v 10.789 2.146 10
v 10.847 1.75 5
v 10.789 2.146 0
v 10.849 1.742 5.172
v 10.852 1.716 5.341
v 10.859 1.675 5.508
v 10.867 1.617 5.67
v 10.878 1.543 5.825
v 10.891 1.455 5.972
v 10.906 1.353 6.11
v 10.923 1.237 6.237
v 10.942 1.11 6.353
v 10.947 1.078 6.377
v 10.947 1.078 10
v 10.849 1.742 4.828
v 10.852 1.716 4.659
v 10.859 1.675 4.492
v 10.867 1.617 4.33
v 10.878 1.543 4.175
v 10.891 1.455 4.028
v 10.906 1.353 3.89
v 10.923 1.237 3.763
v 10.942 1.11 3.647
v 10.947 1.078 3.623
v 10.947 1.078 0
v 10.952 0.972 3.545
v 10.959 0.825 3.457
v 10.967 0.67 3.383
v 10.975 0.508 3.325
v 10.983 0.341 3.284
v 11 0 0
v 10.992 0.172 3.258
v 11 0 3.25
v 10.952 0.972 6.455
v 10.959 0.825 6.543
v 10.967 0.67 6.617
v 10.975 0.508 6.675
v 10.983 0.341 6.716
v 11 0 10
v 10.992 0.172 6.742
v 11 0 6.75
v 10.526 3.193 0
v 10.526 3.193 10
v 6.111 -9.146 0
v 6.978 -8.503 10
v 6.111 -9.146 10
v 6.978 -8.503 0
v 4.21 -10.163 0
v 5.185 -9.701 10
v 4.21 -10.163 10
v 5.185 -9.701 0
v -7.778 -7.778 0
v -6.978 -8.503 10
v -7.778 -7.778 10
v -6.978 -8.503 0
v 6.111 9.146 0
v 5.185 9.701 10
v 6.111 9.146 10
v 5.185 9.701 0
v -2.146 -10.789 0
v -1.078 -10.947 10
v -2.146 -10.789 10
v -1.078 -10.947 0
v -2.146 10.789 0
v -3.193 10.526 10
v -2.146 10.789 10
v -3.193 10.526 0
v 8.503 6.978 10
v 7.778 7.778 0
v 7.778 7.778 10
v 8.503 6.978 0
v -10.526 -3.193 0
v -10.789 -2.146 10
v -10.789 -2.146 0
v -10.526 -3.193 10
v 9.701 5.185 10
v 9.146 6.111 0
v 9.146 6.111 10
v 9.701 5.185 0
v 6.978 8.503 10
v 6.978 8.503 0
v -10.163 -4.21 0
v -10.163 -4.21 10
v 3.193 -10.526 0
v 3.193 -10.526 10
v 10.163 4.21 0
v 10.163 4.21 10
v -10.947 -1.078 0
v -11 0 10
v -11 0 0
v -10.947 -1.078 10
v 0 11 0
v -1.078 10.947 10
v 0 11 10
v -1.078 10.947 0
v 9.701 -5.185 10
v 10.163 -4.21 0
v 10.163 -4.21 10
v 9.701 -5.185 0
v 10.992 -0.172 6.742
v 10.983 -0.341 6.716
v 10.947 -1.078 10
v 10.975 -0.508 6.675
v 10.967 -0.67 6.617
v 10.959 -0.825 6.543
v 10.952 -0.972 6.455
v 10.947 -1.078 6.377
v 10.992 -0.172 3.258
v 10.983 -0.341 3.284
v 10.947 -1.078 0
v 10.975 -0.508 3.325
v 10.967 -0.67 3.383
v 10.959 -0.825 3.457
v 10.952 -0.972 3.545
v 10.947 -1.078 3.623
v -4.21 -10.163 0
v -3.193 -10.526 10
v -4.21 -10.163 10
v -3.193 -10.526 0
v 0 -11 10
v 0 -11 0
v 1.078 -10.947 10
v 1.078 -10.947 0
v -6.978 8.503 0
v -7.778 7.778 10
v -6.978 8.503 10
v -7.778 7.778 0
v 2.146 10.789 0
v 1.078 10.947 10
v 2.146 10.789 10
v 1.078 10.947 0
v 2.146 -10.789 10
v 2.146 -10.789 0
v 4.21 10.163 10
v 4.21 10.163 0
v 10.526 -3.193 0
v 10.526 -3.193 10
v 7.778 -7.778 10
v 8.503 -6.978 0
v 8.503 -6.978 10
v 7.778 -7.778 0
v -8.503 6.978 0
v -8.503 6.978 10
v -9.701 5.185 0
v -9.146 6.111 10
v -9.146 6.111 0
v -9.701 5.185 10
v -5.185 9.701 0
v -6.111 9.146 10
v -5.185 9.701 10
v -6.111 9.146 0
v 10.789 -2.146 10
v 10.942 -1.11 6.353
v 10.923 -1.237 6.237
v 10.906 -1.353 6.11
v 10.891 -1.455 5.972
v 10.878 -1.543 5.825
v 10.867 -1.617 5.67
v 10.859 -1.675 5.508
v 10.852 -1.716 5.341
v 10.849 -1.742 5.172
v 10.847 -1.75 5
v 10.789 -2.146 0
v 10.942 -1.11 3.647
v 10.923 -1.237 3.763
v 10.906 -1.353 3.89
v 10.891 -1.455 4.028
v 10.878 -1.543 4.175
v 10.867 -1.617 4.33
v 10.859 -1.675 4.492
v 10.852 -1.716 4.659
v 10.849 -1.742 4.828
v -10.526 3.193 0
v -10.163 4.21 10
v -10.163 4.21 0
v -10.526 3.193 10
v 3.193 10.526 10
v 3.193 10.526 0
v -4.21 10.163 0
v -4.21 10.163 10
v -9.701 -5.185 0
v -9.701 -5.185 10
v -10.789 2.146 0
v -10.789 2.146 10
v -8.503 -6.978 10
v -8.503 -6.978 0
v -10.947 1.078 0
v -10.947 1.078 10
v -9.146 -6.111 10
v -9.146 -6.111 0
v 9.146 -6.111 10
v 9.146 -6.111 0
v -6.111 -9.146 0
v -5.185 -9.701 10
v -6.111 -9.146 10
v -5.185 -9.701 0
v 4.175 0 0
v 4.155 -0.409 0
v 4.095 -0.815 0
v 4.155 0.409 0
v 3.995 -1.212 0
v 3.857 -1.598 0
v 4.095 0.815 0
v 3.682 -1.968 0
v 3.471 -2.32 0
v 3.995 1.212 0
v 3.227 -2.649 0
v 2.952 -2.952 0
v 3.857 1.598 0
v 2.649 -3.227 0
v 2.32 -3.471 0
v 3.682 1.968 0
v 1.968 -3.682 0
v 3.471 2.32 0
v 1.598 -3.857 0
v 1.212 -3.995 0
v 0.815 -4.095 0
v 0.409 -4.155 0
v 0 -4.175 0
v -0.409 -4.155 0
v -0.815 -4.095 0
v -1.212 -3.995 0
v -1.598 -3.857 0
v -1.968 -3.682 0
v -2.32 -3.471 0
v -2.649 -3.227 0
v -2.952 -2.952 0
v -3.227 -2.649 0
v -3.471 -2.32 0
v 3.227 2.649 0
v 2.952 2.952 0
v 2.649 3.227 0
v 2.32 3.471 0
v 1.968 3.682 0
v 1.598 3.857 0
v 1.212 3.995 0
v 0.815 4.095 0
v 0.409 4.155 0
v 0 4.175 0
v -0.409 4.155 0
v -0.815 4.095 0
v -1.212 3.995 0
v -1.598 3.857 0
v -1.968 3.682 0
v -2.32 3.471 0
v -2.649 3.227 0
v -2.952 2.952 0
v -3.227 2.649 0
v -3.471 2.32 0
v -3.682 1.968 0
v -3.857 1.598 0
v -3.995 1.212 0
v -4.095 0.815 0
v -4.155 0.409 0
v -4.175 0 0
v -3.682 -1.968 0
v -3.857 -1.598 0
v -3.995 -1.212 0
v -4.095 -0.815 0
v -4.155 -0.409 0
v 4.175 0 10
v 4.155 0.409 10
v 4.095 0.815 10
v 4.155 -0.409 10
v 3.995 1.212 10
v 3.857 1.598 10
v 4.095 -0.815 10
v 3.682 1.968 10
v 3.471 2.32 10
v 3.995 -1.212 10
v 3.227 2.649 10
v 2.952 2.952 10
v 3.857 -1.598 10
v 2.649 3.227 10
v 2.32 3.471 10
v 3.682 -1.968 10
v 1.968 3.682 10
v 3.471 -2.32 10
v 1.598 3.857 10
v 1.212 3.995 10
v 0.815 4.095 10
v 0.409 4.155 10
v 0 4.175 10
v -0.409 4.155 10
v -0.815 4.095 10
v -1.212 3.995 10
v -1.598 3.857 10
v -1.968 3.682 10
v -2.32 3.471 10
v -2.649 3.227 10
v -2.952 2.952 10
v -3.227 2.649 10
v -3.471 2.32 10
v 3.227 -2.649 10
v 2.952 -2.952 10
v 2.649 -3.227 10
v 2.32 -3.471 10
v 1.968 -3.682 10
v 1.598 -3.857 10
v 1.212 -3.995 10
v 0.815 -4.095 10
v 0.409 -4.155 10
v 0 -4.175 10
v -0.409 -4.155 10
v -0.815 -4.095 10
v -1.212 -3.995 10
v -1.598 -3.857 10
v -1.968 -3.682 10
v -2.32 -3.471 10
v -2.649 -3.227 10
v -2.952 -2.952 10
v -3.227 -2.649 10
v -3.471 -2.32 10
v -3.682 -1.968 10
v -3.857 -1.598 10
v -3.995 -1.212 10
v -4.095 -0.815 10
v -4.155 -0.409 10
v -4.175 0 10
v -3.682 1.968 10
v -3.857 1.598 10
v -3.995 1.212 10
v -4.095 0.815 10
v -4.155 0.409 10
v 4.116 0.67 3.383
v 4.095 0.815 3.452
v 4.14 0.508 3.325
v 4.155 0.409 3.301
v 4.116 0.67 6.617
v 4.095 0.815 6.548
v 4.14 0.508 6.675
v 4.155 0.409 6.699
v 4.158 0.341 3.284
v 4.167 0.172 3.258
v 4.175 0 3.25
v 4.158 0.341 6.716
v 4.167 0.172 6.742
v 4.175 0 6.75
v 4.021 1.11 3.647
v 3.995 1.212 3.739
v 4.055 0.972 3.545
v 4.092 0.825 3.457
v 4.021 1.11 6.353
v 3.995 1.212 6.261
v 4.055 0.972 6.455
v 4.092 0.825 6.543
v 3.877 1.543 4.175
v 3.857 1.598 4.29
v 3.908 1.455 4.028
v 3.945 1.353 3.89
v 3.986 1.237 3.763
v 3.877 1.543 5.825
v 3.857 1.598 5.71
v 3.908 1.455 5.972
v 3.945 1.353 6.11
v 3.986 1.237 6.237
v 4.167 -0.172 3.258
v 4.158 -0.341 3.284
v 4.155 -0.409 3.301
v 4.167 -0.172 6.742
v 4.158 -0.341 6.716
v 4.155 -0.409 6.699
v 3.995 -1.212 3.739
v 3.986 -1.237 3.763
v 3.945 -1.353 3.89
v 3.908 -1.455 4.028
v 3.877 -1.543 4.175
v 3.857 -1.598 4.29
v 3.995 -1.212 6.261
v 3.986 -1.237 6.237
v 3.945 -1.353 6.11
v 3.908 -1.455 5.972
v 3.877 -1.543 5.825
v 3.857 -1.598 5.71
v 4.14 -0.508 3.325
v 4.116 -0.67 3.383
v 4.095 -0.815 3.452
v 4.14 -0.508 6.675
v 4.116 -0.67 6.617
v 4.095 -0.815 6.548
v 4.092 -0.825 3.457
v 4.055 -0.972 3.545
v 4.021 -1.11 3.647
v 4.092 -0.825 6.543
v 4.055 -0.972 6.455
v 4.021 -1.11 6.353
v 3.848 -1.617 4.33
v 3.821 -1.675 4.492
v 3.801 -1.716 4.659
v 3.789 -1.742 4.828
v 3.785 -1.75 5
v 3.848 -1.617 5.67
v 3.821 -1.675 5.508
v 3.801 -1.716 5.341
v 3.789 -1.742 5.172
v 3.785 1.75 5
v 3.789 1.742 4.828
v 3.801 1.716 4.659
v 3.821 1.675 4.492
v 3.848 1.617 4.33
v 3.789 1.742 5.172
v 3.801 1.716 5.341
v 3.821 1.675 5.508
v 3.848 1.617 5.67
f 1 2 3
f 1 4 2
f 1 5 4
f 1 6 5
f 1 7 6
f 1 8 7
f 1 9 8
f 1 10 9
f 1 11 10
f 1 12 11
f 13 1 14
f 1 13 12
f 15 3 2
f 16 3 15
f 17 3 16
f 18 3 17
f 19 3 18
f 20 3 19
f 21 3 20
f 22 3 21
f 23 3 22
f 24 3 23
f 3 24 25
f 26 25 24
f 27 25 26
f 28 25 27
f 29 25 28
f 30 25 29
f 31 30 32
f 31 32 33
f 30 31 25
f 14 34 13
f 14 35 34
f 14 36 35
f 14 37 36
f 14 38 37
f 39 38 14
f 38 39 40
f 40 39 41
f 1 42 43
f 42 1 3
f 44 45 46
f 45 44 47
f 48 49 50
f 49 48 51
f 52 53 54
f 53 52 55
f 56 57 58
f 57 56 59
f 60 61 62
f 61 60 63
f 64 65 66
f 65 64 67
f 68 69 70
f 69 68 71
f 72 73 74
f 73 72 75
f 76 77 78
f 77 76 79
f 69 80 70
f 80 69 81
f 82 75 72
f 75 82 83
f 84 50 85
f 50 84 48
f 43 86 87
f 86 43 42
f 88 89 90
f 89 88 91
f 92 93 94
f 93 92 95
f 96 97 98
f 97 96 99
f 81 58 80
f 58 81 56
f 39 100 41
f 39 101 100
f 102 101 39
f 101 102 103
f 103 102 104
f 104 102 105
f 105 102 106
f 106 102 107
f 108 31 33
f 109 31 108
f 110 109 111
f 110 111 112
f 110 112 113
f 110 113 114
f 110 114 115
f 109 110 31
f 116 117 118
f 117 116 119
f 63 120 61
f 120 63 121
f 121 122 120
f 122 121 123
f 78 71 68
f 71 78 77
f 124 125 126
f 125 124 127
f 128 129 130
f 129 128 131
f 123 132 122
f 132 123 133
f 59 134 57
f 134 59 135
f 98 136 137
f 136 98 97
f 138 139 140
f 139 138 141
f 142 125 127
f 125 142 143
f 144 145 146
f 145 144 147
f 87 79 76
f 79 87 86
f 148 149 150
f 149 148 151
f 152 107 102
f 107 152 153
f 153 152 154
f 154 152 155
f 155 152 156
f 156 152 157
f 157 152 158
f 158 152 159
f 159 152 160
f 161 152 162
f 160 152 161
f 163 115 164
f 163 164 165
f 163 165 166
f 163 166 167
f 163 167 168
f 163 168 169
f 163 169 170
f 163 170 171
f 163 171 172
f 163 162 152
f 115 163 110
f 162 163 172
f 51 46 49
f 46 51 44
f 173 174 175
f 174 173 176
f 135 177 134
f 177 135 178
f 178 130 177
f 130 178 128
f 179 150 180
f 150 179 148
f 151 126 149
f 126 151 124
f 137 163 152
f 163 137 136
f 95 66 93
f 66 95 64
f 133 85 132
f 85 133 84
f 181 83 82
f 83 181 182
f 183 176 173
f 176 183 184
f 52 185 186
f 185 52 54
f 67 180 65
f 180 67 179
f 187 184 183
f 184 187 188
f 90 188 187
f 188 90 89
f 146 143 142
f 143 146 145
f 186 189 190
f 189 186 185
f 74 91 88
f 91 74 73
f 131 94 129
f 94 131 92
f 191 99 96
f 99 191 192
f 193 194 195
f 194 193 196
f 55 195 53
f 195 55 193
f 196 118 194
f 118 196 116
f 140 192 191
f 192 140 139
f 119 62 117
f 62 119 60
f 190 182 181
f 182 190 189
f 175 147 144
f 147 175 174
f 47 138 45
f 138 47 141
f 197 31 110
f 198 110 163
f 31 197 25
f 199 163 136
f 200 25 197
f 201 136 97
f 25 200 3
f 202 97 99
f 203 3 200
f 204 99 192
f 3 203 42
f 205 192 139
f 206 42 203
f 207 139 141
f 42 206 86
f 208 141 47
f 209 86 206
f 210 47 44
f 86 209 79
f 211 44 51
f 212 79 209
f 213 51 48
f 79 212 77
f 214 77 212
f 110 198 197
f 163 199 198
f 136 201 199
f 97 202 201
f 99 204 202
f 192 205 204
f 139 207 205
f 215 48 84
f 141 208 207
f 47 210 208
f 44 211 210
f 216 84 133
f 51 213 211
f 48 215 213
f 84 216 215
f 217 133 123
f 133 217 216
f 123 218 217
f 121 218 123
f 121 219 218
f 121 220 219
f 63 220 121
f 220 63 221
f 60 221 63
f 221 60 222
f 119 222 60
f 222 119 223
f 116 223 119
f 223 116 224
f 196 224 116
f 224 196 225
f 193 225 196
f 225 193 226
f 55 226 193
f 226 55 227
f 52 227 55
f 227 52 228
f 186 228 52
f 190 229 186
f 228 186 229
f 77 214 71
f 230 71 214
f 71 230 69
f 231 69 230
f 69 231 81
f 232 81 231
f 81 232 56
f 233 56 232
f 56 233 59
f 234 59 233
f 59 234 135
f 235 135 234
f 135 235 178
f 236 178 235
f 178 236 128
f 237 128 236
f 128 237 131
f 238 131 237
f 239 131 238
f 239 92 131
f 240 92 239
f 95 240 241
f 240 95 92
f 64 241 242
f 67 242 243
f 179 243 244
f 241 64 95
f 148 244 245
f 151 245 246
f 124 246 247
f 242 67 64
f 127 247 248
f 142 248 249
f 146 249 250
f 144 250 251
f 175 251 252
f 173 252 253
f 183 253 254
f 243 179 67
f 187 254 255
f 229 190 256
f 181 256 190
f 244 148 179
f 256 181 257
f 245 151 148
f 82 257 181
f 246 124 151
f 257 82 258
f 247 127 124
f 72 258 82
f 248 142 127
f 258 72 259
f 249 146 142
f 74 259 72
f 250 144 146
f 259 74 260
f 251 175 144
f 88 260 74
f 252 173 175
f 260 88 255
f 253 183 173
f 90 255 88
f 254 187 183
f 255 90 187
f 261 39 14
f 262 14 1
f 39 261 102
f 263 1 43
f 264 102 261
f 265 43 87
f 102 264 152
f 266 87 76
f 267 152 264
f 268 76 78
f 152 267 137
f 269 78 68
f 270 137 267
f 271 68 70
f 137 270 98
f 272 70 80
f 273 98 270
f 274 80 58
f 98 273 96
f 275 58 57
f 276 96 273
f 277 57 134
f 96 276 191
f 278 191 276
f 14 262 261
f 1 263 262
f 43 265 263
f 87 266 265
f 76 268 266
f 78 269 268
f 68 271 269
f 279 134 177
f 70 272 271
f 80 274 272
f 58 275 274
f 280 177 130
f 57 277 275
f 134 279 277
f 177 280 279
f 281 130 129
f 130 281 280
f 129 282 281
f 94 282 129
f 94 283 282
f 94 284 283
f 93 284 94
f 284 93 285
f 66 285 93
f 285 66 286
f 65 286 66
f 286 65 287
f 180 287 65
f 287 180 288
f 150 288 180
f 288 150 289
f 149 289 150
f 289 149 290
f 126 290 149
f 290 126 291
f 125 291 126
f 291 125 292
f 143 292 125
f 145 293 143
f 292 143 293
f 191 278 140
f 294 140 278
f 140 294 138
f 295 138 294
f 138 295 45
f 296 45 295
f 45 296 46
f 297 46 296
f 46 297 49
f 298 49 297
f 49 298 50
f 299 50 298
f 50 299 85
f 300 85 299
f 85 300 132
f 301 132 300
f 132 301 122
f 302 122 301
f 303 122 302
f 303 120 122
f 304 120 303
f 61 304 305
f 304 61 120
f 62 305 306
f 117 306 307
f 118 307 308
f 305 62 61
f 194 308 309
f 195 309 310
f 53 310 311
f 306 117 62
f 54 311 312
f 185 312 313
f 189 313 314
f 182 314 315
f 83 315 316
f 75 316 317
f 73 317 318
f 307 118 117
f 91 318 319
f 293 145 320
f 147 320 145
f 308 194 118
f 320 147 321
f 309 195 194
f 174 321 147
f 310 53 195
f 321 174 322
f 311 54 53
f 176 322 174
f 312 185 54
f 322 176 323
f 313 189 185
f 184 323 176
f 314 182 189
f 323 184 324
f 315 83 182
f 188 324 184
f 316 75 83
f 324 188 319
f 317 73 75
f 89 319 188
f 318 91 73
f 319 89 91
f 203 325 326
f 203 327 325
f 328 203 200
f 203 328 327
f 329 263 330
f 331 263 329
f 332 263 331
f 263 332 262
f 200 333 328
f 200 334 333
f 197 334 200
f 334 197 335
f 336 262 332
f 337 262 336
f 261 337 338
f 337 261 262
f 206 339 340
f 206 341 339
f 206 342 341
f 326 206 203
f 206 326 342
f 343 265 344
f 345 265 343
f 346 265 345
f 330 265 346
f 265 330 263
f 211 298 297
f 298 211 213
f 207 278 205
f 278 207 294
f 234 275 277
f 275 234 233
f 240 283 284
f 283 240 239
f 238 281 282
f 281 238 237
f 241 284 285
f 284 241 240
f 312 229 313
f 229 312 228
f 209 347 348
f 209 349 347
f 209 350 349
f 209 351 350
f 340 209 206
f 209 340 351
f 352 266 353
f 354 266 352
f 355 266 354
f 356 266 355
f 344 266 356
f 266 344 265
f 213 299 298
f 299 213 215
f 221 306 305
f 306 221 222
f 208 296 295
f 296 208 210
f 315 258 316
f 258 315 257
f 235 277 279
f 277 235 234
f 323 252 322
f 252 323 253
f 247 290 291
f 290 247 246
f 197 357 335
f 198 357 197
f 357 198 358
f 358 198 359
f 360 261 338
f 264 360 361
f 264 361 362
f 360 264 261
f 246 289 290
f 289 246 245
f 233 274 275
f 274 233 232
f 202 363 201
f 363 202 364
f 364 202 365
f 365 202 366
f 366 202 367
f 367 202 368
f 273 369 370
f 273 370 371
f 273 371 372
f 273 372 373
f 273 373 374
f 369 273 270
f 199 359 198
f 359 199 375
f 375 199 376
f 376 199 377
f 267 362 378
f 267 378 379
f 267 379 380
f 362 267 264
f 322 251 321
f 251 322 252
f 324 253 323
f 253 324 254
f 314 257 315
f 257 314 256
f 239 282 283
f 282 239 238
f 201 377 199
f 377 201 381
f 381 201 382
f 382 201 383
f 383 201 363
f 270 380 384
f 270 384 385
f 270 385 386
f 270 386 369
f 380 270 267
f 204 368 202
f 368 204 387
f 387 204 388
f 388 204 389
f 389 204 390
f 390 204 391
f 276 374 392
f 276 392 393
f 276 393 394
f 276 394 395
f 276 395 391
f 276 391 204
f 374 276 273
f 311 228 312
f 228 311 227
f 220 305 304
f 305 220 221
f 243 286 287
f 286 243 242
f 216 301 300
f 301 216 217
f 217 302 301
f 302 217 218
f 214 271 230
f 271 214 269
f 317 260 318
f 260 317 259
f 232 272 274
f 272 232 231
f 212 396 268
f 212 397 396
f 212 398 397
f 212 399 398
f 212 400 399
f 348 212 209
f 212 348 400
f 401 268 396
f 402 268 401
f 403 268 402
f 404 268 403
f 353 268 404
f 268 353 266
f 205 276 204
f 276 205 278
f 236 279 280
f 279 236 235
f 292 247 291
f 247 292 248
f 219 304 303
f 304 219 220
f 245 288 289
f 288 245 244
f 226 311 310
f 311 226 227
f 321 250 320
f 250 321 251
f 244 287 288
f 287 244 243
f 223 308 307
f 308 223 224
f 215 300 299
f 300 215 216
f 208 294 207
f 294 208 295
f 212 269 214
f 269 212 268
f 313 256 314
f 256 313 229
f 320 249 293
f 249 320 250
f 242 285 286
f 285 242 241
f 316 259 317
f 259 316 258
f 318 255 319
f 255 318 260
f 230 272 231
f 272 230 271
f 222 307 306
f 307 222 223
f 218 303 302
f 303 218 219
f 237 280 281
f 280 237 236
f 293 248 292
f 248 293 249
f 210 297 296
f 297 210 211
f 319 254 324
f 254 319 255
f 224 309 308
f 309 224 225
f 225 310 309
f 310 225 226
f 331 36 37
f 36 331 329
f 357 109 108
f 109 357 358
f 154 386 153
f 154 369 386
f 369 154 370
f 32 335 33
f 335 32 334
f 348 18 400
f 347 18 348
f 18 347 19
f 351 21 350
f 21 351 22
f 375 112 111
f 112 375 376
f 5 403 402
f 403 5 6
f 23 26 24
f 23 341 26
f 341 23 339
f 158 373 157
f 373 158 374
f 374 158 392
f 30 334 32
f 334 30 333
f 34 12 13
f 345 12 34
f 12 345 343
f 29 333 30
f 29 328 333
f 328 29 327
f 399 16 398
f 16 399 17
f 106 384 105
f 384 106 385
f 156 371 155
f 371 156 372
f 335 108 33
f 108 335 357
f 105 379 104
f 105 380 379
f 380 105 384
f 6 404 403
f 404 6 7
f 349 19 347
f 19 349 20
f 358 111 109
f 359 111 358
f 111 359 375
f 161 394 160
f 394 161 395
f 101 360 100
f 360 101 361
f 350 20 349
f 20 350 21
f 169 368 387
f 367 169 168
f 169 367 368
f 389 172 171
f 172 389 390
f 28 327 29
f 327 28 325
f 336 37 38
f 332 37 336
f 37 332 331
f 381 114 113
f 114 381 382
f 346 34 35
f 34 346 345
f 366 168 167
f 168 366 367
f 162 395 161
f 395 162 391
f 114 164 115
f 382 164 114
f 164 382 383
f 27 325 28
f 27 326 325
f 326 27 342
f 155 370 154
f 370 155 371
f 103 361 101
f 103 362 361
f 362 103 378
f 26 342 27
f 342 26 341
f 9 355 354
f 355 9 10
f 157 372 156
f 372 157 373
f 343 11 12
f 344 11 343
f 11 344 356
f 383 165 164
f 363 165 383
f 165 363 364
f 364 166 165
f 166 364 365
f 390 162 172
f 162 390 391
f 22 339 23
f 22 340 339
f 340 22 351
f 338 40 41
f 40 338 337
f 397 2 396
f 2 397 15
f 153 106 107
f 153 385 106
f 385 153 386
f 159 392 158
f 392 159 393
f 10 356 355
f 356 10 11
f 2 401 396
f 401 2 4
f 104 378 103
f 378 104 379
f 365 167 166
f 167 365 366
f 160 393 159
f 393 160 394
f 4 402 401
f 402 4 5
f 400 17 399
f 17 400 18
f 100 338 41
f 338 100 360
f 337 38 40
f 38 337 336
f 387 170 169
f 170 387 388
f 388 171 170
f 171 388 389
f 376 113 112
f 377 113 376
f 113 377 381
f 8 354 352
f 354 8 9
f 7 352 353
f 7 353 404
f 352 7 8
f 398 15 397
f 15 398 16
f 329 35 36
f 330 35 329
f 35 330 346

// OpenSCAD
// file: parameters.scad
// =============================================================================
// Gen-AO Stacked dual-stator mid-rotor copper-max ultra - WOUND-AWARE (HARD GATE)
// ONE mid dual-face Halbach rotor | TWO wound pancake stators | 18 coils x165 t
// =============================================================================

wire_awg            = 26;
wire_od             = 0.45;
turns               = 165;      // +10 vs Gen-AL 155; 18x165x~0.119 ~ 353 m
fill                = 0.70;
layers_per_face     = 2;
wind_build_axial    = layers_per_face * wire_od * fill;   // 0.63
wind_build_radial   = 3 * wire_od * fill;                 // 0.945

coil_id_r           = 18.0;
coil_od_r           = 63.0;
span_deg            = 34.0;     // 9 stations x 40 deg
former_web          = 1.30;     // thinner vs AL 1.40
flange_t            = 0.60;
wall                = 1.2;
slot_w              = 2.4;
mount_hole          = 3.5;
tab_len             = 7.0;

former_bare_h       = former_web + 2 * flange_t;            // 2.50
coil_envelope_h     = former_bare_h + 2 * wind_build_axial; // 3.76

run_clear           = 0.50;
gap_spacer_h        = run_clear + wind_build_axial;         // 1.13
m2m                 = coil_envelope_h + 2 * run_clear;      // 4.76 per gap

coil_stations       = 9;        // per stator; x2 = 18 total
bay_r_in            = coil_id_r - 2.0 - wind_build_radial;
bay_r_out           = coil_od_r + 2.0 + wind_build_radial;
bay_span            = span_deg + 4.0;
bay_offset          = 2.0;
bay_depth           = former_bare_h + wind_build_axial;     // wound sits in bay
stator_back_web     = 2.0;
stator_thick        = bay_depth + stator_back_web;
stator_od           = 156.0;
shaft_clear_stator  = 38.0;
coil_mount_r        = 27.5;

large_pocket_d      = 20.3;
small_pocket_d      = 5.3;
pocket_h            = 5.2;
large_n             = 8;
R_large             = 40.0;     // tighter copper overlap vs AL R=41
R_small_inner       = 26.5;
R_small_mid         = 40.0;
R_small_outer       = 56.5;
carrier_od          = 154.0;
mid_carrier_thick   = 12.0;
hub_h               = 10.0;
hub_od              = 30.0;
rotor_b_offset_deg  = 22.5;

shaft_bore          = 8.35;
bearing_d           = 21.85;
bearing_h           = 7.2;
m3_clear            = 3.5;
bolt_r_inner        = 36.0;
bolt_n_inner        = 6;
flange_bolt_r       = 72.0;
flange_bolt_n       = 6;
brace_r             = 68.0;
brace_d             = 4.3;
brace_n             = 4;

spacer_pad_od       = 14.0;
spacer_pad_id       = m3_clear;
endbell_od          = 156.0;
endbell_thick       = 8.0;
endbell_shaft_clear = 10.0;

$fn = 64;
// main file
// Gen-AO shaft collar — print ×2–4
include <parameters.scad>;
$fn = 64;
od = 22; id = shaft_bore; h = 10; set_d = 3.5;
difference() {
    cylinder(d=od, h=h);
    translate([0, 0, -0.1]) cylinder(d=id, h=h + 0.2);
    translate([0, 0, h/2]) rotate([0, 90, 0]) cylinder(d=set_d, h=od);
}
